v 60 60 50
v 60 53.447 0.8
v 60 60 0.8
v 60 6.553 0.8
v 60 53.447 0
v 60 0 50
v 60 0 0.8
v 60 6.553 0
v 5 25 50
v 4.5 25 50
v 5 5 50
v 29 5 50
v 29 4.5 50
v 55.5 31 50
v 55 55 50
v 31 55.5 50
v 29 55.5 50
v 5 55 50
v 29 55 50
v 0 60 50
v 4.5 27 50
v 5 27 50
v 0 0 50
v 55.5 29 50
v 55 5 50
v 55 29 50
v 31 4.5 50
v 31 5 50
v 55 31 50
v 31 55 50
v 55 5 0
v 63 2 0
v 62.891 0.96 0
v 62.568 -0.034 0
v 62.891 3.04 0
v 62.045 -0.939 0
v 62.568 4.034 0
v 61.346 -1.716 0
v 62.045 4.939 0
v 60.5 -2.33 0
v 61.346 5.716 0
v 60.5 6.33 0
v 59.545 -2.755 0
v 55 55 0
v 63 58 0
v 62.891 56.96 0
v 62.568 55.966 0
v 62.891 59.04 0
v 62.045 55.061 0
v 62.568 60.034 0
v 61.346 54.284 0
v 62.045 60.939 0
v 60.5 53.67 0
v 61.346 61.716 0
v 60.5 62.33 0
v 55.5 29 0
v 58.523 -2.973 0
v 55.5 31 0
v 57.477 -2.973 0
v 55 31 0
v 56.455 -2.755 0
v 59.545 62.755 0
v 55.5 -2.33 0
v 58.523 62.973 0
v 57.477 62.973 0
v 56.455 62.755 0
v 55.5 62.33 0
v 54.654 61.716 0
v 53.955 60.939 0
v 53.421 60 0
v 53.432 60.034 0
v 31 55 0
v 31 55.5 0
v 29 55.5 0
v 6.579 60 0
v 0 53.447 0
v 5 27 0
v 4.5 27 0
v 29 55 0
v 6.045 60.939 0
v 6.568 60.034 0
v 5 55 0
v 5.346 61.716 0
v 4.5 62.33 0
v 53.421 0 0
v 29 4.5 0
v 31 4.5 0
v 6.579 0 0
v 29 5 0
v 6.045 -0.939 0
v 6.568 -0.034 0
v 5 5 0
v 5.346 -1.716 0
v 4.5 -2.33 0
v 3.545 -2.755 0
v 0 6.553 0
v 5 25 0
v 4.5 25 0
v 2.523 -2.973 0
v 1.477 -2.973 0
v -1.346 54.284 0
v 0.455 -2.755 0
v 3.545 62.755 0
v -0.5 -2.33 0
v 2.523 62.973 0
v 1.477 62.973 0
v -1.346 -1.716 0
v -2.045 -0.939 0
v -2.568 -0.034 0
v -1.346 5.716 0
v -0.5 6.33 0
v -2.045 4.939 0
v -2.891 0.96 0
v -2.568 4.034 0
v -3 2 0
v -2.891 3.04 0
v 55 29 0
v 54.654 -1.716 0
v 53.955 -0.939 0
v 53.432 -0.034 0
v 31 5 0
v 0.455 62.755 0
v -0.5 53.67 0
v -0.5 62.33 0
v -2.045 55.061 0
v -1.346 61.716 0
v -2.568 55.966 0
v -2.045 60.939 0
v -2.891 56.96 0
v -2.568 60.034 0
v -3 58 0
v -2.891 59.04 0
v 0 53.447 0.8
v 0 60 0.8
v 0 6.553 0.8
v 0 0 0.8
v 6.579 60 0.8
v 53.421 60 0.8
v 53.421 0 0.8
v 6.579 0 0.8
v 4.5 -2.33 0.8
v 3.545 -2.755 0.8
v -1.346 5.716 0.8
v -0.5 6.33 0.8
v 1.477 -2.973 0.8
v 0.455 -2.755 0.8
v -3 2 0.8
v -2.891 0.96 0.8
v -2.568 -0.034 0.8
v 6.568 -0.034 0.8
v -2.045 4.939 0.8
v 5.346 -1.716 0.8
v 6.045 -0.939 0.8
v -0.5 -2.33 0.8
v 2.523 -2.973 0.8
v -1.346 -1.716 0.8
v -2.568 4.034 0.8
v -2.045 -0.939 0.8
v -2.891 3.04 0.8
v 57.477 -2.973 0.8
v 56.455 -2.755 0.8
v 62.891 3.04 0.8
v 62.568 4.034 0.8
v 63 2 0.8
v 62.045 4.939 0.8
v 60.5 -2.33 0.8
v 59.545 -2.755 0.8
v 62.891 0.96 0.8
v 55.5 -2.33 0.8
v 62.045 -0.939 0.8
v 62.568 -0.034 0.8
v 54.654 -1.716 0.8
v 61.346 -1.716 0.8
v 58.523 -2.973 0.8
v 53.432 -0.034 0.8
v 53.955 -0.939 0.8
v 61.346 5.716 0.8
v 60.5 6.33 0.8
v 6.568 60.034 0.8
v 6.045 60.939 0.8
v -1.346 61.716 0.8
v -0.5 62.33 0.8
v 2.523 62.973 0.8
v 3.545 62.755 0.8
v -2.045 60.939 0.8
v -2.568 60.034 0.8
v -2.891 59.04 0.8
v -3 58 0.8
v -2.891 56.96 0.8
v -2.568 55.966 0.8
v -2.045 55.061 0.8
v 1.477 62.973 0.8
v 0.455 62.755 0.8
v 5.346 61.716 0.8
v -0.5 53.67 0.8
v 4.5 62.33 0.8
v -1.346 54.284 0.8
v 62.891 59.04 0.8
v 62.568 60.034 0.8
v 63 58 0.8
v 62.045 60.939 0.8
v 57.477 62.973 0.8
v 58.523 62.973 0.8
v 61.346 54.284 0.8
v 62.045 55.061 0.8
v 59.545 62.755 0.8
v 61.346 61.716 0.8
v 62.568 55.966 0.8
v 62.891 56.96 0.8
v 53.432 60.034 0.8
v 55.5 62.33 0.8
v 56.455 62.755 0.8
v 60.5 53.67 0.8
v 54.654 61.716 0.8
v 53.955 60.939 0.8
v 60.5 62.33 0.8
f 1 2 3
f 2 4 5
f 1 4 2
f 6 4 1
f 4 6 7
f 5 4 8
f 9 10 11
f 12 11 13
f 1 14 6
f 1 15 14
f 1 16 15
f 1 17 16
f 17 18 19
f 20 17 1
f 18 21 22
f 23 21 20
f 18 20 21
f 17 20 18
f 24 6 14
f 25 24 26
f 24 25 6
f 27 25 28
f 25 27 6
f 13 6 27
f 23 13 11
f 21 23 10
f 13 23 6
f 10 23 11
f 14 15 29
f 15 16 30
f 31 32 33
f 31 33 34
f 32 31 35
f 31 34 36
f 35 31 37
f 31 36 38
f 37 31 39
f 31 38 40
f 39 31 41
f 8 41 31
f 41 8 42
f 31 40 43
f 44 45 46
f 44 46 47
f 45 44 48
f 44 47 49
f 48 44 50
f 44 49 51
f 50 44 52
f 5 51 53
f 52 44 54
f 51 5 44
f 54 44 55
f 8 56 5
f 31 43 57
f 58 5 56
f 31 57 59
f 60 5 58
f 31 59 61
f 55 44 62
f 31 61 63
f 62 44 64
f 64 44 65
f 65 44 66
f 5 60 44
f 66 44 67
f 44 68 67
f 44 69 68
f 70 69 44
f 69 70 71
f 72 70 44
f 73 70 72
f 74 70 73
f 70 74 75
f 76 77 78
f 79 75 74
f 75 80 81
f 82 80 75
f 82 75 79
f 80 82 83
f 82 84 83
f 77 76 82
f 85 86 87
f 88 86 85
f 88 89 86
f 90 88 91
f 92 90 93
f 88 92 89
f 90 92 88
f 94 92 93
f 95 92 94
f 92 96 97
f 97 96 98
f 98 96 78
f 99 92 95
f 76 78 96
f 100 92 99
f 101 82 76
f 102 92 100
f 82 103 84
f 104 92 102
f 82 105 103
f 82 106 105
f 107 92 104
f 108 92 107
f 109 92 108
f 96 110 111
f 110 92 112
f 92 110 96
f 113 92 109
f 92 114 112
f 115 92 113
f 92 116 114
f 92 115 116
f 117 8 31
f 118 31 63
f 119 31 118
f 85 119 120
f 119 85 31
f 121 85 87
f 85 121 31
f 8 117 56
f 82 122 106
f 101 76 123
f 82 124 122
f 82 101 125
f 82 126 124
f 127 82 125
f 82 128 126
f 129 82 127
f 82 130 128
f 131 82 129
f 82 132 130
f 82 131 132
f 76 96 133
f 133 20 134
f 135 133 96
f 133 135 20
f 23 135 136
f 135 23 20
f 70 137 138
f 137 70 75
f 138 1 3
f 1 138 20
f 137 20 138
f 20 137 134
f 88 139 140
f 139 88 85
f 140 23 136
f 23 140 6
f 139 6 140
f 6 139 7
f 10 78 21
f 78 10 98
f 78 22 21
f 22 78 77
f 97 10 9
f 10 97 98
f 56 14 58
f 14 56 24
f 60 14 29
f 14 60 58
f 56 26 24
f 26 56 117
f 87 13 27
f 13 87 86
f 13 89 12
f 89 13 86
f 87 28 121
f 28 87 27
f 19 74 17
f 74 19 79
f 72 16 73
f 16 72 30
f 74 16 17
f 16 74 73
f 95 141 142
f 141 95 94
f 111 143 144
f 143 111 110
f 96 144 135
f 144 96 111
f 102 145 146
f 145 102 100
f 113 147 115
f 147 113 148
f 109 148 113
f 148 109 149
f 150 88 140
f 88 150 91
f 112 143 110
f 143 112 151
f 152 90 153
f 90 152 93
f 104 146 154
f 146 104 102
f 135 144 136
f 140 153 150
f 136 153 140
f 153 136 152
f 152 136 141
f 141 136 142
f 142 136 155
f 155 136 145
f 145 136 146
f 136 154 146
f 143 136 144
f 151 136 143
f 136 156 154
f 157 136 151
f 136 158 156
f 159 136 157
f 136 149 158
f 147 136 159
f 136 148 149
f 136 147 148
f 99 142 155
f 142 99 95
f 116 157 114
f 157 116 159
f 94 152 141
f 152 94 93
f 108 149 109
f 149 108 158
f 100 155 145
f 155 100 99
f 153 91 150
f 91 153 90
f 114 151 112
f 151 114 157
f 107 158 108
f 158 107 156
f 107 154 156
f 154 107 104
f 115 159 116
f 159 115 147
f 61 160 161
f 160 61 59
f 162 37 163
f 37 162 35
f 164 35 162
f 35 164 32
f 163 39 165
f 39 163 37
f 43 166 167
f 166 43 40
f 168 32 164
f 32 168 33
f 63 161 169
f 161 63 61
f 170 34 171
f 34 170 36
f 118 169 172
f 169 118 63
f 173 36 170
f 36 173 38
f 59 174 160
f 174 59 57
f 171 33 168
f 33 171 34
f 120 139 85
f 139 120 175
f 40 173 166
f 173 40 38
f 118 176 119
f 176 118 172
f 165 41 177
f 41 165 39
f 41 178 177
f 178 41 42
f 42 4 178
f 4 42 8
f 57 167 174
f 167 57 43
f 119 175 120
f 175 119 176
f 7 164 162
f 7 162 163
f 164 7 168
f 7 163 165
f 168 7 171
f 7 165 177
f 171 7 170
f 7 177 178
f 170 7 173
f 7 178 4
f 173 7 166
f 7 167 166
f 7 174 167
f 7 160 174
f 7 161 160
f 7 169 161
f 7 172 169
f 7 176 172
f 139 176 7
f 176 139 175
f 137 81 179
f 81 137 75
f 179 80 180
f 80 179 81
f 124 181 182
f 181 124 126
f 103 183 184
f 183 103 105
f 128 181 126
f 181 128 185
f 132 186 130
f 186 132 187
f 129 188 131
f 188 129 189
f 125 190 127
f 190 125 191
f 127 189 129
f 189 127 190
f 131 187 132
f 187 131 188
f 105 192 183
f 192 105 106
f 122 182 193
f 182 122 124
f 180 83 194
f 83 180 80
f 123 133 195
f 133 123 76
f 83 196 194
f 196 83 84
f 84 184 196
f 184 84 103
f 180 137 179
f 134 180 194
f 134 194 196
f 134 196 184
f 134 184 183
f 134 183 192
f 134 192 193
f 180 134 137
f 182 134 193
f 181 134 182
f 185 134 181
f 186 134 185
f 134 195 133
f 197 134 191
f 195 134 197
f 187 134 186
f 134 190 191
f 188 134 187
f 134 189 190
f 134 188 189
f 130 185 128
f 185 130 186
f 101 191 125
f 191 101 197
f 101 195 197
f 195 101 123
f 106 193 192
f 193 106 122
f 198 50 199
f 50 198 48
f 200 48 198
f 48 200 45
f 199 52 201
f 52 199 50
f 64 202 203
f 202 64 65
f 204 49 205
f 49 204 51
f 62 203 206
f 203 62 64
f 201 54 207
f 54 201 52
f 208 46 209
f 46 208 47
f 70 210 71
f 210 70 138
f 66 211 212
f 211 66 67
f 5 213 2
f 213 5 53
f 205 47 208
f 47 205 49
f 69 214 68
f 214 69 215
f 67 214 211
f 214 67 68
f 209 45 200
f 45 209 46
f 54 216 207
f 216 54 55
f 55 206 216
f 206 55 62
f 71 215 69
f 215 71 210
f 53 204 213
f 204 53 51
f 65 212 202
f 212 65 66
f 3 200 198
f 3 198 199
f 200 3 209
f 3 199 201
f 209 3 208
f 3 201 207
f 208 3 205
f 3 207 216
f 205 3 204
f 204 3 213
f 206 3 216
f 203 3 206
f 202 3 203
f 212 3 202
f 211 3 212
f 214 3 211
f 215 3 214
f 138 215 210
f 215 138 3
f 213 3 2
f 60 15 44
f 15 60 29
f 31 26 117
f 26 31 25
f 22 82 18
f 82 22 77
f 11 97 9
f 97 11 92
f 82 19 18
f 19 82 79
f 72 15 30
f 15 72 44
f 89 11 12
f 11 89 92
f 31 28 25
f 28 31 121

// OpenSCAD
// Calibration test tower
//
// Generate STL using OpenSCAD:
//   openscad square_tower.scad -o square_tower.stl

square_width = 5;
square_size = 60;
square_height = 50;
antiwarp_height = .8;
antiwarp_radius = 5;
CUT = 0.01;

module notch(x, y, rot) {
    depth = .5;
    width = 1;
    translate([x, y, 0])
        rotate([0, 0, rot])
            translate([-depth, -width, -CUT])
                cube([2*depth, 2*width, square_height + 2*CUT]);
}

module square_with_notches() {
    difference() {
        // Start with initial square
        cube([square_size, square_size, square_height]);
        // Remove four notches on inside perimeter
        notch(square_width, square_size/2 - 4, 0);
        notch(square_size - square_width, square_size/2, 0);
        notch(square_size/2, square_width, 90);
        notch(square_size/2, square_size - square_width, 90);
    }
}

module anti_warp_feet() {
    module anti_warp_cylinder() {
        cylinder(r=antiwarp_radius, h=antiwarp_height, $fs=.5);
    }
    dist = antiwarp_radius / 2.5;
    translate([dist, dist, 0])
        anti_warp_cylinder();
    translate([square_size-dist, dist, 0])
        anti_warp_cylinder();
    translate([dist, square_size-dist, 0])
        anti_warp_cylinder();
    translate([square_size-dist, square_size-dist, 0])
        anti_warp_cylinder();
}

module hollow_square() {
    difference() {
        union() {
            square_with_notches();
            anti_warp_feet();
        }
        translate([square_width, square_width, -CUT])
            cube([square_size-2*square_width, square_size-2*square_width,
                  square_height + 2*CUT]);
    }
}

hollow_square();
